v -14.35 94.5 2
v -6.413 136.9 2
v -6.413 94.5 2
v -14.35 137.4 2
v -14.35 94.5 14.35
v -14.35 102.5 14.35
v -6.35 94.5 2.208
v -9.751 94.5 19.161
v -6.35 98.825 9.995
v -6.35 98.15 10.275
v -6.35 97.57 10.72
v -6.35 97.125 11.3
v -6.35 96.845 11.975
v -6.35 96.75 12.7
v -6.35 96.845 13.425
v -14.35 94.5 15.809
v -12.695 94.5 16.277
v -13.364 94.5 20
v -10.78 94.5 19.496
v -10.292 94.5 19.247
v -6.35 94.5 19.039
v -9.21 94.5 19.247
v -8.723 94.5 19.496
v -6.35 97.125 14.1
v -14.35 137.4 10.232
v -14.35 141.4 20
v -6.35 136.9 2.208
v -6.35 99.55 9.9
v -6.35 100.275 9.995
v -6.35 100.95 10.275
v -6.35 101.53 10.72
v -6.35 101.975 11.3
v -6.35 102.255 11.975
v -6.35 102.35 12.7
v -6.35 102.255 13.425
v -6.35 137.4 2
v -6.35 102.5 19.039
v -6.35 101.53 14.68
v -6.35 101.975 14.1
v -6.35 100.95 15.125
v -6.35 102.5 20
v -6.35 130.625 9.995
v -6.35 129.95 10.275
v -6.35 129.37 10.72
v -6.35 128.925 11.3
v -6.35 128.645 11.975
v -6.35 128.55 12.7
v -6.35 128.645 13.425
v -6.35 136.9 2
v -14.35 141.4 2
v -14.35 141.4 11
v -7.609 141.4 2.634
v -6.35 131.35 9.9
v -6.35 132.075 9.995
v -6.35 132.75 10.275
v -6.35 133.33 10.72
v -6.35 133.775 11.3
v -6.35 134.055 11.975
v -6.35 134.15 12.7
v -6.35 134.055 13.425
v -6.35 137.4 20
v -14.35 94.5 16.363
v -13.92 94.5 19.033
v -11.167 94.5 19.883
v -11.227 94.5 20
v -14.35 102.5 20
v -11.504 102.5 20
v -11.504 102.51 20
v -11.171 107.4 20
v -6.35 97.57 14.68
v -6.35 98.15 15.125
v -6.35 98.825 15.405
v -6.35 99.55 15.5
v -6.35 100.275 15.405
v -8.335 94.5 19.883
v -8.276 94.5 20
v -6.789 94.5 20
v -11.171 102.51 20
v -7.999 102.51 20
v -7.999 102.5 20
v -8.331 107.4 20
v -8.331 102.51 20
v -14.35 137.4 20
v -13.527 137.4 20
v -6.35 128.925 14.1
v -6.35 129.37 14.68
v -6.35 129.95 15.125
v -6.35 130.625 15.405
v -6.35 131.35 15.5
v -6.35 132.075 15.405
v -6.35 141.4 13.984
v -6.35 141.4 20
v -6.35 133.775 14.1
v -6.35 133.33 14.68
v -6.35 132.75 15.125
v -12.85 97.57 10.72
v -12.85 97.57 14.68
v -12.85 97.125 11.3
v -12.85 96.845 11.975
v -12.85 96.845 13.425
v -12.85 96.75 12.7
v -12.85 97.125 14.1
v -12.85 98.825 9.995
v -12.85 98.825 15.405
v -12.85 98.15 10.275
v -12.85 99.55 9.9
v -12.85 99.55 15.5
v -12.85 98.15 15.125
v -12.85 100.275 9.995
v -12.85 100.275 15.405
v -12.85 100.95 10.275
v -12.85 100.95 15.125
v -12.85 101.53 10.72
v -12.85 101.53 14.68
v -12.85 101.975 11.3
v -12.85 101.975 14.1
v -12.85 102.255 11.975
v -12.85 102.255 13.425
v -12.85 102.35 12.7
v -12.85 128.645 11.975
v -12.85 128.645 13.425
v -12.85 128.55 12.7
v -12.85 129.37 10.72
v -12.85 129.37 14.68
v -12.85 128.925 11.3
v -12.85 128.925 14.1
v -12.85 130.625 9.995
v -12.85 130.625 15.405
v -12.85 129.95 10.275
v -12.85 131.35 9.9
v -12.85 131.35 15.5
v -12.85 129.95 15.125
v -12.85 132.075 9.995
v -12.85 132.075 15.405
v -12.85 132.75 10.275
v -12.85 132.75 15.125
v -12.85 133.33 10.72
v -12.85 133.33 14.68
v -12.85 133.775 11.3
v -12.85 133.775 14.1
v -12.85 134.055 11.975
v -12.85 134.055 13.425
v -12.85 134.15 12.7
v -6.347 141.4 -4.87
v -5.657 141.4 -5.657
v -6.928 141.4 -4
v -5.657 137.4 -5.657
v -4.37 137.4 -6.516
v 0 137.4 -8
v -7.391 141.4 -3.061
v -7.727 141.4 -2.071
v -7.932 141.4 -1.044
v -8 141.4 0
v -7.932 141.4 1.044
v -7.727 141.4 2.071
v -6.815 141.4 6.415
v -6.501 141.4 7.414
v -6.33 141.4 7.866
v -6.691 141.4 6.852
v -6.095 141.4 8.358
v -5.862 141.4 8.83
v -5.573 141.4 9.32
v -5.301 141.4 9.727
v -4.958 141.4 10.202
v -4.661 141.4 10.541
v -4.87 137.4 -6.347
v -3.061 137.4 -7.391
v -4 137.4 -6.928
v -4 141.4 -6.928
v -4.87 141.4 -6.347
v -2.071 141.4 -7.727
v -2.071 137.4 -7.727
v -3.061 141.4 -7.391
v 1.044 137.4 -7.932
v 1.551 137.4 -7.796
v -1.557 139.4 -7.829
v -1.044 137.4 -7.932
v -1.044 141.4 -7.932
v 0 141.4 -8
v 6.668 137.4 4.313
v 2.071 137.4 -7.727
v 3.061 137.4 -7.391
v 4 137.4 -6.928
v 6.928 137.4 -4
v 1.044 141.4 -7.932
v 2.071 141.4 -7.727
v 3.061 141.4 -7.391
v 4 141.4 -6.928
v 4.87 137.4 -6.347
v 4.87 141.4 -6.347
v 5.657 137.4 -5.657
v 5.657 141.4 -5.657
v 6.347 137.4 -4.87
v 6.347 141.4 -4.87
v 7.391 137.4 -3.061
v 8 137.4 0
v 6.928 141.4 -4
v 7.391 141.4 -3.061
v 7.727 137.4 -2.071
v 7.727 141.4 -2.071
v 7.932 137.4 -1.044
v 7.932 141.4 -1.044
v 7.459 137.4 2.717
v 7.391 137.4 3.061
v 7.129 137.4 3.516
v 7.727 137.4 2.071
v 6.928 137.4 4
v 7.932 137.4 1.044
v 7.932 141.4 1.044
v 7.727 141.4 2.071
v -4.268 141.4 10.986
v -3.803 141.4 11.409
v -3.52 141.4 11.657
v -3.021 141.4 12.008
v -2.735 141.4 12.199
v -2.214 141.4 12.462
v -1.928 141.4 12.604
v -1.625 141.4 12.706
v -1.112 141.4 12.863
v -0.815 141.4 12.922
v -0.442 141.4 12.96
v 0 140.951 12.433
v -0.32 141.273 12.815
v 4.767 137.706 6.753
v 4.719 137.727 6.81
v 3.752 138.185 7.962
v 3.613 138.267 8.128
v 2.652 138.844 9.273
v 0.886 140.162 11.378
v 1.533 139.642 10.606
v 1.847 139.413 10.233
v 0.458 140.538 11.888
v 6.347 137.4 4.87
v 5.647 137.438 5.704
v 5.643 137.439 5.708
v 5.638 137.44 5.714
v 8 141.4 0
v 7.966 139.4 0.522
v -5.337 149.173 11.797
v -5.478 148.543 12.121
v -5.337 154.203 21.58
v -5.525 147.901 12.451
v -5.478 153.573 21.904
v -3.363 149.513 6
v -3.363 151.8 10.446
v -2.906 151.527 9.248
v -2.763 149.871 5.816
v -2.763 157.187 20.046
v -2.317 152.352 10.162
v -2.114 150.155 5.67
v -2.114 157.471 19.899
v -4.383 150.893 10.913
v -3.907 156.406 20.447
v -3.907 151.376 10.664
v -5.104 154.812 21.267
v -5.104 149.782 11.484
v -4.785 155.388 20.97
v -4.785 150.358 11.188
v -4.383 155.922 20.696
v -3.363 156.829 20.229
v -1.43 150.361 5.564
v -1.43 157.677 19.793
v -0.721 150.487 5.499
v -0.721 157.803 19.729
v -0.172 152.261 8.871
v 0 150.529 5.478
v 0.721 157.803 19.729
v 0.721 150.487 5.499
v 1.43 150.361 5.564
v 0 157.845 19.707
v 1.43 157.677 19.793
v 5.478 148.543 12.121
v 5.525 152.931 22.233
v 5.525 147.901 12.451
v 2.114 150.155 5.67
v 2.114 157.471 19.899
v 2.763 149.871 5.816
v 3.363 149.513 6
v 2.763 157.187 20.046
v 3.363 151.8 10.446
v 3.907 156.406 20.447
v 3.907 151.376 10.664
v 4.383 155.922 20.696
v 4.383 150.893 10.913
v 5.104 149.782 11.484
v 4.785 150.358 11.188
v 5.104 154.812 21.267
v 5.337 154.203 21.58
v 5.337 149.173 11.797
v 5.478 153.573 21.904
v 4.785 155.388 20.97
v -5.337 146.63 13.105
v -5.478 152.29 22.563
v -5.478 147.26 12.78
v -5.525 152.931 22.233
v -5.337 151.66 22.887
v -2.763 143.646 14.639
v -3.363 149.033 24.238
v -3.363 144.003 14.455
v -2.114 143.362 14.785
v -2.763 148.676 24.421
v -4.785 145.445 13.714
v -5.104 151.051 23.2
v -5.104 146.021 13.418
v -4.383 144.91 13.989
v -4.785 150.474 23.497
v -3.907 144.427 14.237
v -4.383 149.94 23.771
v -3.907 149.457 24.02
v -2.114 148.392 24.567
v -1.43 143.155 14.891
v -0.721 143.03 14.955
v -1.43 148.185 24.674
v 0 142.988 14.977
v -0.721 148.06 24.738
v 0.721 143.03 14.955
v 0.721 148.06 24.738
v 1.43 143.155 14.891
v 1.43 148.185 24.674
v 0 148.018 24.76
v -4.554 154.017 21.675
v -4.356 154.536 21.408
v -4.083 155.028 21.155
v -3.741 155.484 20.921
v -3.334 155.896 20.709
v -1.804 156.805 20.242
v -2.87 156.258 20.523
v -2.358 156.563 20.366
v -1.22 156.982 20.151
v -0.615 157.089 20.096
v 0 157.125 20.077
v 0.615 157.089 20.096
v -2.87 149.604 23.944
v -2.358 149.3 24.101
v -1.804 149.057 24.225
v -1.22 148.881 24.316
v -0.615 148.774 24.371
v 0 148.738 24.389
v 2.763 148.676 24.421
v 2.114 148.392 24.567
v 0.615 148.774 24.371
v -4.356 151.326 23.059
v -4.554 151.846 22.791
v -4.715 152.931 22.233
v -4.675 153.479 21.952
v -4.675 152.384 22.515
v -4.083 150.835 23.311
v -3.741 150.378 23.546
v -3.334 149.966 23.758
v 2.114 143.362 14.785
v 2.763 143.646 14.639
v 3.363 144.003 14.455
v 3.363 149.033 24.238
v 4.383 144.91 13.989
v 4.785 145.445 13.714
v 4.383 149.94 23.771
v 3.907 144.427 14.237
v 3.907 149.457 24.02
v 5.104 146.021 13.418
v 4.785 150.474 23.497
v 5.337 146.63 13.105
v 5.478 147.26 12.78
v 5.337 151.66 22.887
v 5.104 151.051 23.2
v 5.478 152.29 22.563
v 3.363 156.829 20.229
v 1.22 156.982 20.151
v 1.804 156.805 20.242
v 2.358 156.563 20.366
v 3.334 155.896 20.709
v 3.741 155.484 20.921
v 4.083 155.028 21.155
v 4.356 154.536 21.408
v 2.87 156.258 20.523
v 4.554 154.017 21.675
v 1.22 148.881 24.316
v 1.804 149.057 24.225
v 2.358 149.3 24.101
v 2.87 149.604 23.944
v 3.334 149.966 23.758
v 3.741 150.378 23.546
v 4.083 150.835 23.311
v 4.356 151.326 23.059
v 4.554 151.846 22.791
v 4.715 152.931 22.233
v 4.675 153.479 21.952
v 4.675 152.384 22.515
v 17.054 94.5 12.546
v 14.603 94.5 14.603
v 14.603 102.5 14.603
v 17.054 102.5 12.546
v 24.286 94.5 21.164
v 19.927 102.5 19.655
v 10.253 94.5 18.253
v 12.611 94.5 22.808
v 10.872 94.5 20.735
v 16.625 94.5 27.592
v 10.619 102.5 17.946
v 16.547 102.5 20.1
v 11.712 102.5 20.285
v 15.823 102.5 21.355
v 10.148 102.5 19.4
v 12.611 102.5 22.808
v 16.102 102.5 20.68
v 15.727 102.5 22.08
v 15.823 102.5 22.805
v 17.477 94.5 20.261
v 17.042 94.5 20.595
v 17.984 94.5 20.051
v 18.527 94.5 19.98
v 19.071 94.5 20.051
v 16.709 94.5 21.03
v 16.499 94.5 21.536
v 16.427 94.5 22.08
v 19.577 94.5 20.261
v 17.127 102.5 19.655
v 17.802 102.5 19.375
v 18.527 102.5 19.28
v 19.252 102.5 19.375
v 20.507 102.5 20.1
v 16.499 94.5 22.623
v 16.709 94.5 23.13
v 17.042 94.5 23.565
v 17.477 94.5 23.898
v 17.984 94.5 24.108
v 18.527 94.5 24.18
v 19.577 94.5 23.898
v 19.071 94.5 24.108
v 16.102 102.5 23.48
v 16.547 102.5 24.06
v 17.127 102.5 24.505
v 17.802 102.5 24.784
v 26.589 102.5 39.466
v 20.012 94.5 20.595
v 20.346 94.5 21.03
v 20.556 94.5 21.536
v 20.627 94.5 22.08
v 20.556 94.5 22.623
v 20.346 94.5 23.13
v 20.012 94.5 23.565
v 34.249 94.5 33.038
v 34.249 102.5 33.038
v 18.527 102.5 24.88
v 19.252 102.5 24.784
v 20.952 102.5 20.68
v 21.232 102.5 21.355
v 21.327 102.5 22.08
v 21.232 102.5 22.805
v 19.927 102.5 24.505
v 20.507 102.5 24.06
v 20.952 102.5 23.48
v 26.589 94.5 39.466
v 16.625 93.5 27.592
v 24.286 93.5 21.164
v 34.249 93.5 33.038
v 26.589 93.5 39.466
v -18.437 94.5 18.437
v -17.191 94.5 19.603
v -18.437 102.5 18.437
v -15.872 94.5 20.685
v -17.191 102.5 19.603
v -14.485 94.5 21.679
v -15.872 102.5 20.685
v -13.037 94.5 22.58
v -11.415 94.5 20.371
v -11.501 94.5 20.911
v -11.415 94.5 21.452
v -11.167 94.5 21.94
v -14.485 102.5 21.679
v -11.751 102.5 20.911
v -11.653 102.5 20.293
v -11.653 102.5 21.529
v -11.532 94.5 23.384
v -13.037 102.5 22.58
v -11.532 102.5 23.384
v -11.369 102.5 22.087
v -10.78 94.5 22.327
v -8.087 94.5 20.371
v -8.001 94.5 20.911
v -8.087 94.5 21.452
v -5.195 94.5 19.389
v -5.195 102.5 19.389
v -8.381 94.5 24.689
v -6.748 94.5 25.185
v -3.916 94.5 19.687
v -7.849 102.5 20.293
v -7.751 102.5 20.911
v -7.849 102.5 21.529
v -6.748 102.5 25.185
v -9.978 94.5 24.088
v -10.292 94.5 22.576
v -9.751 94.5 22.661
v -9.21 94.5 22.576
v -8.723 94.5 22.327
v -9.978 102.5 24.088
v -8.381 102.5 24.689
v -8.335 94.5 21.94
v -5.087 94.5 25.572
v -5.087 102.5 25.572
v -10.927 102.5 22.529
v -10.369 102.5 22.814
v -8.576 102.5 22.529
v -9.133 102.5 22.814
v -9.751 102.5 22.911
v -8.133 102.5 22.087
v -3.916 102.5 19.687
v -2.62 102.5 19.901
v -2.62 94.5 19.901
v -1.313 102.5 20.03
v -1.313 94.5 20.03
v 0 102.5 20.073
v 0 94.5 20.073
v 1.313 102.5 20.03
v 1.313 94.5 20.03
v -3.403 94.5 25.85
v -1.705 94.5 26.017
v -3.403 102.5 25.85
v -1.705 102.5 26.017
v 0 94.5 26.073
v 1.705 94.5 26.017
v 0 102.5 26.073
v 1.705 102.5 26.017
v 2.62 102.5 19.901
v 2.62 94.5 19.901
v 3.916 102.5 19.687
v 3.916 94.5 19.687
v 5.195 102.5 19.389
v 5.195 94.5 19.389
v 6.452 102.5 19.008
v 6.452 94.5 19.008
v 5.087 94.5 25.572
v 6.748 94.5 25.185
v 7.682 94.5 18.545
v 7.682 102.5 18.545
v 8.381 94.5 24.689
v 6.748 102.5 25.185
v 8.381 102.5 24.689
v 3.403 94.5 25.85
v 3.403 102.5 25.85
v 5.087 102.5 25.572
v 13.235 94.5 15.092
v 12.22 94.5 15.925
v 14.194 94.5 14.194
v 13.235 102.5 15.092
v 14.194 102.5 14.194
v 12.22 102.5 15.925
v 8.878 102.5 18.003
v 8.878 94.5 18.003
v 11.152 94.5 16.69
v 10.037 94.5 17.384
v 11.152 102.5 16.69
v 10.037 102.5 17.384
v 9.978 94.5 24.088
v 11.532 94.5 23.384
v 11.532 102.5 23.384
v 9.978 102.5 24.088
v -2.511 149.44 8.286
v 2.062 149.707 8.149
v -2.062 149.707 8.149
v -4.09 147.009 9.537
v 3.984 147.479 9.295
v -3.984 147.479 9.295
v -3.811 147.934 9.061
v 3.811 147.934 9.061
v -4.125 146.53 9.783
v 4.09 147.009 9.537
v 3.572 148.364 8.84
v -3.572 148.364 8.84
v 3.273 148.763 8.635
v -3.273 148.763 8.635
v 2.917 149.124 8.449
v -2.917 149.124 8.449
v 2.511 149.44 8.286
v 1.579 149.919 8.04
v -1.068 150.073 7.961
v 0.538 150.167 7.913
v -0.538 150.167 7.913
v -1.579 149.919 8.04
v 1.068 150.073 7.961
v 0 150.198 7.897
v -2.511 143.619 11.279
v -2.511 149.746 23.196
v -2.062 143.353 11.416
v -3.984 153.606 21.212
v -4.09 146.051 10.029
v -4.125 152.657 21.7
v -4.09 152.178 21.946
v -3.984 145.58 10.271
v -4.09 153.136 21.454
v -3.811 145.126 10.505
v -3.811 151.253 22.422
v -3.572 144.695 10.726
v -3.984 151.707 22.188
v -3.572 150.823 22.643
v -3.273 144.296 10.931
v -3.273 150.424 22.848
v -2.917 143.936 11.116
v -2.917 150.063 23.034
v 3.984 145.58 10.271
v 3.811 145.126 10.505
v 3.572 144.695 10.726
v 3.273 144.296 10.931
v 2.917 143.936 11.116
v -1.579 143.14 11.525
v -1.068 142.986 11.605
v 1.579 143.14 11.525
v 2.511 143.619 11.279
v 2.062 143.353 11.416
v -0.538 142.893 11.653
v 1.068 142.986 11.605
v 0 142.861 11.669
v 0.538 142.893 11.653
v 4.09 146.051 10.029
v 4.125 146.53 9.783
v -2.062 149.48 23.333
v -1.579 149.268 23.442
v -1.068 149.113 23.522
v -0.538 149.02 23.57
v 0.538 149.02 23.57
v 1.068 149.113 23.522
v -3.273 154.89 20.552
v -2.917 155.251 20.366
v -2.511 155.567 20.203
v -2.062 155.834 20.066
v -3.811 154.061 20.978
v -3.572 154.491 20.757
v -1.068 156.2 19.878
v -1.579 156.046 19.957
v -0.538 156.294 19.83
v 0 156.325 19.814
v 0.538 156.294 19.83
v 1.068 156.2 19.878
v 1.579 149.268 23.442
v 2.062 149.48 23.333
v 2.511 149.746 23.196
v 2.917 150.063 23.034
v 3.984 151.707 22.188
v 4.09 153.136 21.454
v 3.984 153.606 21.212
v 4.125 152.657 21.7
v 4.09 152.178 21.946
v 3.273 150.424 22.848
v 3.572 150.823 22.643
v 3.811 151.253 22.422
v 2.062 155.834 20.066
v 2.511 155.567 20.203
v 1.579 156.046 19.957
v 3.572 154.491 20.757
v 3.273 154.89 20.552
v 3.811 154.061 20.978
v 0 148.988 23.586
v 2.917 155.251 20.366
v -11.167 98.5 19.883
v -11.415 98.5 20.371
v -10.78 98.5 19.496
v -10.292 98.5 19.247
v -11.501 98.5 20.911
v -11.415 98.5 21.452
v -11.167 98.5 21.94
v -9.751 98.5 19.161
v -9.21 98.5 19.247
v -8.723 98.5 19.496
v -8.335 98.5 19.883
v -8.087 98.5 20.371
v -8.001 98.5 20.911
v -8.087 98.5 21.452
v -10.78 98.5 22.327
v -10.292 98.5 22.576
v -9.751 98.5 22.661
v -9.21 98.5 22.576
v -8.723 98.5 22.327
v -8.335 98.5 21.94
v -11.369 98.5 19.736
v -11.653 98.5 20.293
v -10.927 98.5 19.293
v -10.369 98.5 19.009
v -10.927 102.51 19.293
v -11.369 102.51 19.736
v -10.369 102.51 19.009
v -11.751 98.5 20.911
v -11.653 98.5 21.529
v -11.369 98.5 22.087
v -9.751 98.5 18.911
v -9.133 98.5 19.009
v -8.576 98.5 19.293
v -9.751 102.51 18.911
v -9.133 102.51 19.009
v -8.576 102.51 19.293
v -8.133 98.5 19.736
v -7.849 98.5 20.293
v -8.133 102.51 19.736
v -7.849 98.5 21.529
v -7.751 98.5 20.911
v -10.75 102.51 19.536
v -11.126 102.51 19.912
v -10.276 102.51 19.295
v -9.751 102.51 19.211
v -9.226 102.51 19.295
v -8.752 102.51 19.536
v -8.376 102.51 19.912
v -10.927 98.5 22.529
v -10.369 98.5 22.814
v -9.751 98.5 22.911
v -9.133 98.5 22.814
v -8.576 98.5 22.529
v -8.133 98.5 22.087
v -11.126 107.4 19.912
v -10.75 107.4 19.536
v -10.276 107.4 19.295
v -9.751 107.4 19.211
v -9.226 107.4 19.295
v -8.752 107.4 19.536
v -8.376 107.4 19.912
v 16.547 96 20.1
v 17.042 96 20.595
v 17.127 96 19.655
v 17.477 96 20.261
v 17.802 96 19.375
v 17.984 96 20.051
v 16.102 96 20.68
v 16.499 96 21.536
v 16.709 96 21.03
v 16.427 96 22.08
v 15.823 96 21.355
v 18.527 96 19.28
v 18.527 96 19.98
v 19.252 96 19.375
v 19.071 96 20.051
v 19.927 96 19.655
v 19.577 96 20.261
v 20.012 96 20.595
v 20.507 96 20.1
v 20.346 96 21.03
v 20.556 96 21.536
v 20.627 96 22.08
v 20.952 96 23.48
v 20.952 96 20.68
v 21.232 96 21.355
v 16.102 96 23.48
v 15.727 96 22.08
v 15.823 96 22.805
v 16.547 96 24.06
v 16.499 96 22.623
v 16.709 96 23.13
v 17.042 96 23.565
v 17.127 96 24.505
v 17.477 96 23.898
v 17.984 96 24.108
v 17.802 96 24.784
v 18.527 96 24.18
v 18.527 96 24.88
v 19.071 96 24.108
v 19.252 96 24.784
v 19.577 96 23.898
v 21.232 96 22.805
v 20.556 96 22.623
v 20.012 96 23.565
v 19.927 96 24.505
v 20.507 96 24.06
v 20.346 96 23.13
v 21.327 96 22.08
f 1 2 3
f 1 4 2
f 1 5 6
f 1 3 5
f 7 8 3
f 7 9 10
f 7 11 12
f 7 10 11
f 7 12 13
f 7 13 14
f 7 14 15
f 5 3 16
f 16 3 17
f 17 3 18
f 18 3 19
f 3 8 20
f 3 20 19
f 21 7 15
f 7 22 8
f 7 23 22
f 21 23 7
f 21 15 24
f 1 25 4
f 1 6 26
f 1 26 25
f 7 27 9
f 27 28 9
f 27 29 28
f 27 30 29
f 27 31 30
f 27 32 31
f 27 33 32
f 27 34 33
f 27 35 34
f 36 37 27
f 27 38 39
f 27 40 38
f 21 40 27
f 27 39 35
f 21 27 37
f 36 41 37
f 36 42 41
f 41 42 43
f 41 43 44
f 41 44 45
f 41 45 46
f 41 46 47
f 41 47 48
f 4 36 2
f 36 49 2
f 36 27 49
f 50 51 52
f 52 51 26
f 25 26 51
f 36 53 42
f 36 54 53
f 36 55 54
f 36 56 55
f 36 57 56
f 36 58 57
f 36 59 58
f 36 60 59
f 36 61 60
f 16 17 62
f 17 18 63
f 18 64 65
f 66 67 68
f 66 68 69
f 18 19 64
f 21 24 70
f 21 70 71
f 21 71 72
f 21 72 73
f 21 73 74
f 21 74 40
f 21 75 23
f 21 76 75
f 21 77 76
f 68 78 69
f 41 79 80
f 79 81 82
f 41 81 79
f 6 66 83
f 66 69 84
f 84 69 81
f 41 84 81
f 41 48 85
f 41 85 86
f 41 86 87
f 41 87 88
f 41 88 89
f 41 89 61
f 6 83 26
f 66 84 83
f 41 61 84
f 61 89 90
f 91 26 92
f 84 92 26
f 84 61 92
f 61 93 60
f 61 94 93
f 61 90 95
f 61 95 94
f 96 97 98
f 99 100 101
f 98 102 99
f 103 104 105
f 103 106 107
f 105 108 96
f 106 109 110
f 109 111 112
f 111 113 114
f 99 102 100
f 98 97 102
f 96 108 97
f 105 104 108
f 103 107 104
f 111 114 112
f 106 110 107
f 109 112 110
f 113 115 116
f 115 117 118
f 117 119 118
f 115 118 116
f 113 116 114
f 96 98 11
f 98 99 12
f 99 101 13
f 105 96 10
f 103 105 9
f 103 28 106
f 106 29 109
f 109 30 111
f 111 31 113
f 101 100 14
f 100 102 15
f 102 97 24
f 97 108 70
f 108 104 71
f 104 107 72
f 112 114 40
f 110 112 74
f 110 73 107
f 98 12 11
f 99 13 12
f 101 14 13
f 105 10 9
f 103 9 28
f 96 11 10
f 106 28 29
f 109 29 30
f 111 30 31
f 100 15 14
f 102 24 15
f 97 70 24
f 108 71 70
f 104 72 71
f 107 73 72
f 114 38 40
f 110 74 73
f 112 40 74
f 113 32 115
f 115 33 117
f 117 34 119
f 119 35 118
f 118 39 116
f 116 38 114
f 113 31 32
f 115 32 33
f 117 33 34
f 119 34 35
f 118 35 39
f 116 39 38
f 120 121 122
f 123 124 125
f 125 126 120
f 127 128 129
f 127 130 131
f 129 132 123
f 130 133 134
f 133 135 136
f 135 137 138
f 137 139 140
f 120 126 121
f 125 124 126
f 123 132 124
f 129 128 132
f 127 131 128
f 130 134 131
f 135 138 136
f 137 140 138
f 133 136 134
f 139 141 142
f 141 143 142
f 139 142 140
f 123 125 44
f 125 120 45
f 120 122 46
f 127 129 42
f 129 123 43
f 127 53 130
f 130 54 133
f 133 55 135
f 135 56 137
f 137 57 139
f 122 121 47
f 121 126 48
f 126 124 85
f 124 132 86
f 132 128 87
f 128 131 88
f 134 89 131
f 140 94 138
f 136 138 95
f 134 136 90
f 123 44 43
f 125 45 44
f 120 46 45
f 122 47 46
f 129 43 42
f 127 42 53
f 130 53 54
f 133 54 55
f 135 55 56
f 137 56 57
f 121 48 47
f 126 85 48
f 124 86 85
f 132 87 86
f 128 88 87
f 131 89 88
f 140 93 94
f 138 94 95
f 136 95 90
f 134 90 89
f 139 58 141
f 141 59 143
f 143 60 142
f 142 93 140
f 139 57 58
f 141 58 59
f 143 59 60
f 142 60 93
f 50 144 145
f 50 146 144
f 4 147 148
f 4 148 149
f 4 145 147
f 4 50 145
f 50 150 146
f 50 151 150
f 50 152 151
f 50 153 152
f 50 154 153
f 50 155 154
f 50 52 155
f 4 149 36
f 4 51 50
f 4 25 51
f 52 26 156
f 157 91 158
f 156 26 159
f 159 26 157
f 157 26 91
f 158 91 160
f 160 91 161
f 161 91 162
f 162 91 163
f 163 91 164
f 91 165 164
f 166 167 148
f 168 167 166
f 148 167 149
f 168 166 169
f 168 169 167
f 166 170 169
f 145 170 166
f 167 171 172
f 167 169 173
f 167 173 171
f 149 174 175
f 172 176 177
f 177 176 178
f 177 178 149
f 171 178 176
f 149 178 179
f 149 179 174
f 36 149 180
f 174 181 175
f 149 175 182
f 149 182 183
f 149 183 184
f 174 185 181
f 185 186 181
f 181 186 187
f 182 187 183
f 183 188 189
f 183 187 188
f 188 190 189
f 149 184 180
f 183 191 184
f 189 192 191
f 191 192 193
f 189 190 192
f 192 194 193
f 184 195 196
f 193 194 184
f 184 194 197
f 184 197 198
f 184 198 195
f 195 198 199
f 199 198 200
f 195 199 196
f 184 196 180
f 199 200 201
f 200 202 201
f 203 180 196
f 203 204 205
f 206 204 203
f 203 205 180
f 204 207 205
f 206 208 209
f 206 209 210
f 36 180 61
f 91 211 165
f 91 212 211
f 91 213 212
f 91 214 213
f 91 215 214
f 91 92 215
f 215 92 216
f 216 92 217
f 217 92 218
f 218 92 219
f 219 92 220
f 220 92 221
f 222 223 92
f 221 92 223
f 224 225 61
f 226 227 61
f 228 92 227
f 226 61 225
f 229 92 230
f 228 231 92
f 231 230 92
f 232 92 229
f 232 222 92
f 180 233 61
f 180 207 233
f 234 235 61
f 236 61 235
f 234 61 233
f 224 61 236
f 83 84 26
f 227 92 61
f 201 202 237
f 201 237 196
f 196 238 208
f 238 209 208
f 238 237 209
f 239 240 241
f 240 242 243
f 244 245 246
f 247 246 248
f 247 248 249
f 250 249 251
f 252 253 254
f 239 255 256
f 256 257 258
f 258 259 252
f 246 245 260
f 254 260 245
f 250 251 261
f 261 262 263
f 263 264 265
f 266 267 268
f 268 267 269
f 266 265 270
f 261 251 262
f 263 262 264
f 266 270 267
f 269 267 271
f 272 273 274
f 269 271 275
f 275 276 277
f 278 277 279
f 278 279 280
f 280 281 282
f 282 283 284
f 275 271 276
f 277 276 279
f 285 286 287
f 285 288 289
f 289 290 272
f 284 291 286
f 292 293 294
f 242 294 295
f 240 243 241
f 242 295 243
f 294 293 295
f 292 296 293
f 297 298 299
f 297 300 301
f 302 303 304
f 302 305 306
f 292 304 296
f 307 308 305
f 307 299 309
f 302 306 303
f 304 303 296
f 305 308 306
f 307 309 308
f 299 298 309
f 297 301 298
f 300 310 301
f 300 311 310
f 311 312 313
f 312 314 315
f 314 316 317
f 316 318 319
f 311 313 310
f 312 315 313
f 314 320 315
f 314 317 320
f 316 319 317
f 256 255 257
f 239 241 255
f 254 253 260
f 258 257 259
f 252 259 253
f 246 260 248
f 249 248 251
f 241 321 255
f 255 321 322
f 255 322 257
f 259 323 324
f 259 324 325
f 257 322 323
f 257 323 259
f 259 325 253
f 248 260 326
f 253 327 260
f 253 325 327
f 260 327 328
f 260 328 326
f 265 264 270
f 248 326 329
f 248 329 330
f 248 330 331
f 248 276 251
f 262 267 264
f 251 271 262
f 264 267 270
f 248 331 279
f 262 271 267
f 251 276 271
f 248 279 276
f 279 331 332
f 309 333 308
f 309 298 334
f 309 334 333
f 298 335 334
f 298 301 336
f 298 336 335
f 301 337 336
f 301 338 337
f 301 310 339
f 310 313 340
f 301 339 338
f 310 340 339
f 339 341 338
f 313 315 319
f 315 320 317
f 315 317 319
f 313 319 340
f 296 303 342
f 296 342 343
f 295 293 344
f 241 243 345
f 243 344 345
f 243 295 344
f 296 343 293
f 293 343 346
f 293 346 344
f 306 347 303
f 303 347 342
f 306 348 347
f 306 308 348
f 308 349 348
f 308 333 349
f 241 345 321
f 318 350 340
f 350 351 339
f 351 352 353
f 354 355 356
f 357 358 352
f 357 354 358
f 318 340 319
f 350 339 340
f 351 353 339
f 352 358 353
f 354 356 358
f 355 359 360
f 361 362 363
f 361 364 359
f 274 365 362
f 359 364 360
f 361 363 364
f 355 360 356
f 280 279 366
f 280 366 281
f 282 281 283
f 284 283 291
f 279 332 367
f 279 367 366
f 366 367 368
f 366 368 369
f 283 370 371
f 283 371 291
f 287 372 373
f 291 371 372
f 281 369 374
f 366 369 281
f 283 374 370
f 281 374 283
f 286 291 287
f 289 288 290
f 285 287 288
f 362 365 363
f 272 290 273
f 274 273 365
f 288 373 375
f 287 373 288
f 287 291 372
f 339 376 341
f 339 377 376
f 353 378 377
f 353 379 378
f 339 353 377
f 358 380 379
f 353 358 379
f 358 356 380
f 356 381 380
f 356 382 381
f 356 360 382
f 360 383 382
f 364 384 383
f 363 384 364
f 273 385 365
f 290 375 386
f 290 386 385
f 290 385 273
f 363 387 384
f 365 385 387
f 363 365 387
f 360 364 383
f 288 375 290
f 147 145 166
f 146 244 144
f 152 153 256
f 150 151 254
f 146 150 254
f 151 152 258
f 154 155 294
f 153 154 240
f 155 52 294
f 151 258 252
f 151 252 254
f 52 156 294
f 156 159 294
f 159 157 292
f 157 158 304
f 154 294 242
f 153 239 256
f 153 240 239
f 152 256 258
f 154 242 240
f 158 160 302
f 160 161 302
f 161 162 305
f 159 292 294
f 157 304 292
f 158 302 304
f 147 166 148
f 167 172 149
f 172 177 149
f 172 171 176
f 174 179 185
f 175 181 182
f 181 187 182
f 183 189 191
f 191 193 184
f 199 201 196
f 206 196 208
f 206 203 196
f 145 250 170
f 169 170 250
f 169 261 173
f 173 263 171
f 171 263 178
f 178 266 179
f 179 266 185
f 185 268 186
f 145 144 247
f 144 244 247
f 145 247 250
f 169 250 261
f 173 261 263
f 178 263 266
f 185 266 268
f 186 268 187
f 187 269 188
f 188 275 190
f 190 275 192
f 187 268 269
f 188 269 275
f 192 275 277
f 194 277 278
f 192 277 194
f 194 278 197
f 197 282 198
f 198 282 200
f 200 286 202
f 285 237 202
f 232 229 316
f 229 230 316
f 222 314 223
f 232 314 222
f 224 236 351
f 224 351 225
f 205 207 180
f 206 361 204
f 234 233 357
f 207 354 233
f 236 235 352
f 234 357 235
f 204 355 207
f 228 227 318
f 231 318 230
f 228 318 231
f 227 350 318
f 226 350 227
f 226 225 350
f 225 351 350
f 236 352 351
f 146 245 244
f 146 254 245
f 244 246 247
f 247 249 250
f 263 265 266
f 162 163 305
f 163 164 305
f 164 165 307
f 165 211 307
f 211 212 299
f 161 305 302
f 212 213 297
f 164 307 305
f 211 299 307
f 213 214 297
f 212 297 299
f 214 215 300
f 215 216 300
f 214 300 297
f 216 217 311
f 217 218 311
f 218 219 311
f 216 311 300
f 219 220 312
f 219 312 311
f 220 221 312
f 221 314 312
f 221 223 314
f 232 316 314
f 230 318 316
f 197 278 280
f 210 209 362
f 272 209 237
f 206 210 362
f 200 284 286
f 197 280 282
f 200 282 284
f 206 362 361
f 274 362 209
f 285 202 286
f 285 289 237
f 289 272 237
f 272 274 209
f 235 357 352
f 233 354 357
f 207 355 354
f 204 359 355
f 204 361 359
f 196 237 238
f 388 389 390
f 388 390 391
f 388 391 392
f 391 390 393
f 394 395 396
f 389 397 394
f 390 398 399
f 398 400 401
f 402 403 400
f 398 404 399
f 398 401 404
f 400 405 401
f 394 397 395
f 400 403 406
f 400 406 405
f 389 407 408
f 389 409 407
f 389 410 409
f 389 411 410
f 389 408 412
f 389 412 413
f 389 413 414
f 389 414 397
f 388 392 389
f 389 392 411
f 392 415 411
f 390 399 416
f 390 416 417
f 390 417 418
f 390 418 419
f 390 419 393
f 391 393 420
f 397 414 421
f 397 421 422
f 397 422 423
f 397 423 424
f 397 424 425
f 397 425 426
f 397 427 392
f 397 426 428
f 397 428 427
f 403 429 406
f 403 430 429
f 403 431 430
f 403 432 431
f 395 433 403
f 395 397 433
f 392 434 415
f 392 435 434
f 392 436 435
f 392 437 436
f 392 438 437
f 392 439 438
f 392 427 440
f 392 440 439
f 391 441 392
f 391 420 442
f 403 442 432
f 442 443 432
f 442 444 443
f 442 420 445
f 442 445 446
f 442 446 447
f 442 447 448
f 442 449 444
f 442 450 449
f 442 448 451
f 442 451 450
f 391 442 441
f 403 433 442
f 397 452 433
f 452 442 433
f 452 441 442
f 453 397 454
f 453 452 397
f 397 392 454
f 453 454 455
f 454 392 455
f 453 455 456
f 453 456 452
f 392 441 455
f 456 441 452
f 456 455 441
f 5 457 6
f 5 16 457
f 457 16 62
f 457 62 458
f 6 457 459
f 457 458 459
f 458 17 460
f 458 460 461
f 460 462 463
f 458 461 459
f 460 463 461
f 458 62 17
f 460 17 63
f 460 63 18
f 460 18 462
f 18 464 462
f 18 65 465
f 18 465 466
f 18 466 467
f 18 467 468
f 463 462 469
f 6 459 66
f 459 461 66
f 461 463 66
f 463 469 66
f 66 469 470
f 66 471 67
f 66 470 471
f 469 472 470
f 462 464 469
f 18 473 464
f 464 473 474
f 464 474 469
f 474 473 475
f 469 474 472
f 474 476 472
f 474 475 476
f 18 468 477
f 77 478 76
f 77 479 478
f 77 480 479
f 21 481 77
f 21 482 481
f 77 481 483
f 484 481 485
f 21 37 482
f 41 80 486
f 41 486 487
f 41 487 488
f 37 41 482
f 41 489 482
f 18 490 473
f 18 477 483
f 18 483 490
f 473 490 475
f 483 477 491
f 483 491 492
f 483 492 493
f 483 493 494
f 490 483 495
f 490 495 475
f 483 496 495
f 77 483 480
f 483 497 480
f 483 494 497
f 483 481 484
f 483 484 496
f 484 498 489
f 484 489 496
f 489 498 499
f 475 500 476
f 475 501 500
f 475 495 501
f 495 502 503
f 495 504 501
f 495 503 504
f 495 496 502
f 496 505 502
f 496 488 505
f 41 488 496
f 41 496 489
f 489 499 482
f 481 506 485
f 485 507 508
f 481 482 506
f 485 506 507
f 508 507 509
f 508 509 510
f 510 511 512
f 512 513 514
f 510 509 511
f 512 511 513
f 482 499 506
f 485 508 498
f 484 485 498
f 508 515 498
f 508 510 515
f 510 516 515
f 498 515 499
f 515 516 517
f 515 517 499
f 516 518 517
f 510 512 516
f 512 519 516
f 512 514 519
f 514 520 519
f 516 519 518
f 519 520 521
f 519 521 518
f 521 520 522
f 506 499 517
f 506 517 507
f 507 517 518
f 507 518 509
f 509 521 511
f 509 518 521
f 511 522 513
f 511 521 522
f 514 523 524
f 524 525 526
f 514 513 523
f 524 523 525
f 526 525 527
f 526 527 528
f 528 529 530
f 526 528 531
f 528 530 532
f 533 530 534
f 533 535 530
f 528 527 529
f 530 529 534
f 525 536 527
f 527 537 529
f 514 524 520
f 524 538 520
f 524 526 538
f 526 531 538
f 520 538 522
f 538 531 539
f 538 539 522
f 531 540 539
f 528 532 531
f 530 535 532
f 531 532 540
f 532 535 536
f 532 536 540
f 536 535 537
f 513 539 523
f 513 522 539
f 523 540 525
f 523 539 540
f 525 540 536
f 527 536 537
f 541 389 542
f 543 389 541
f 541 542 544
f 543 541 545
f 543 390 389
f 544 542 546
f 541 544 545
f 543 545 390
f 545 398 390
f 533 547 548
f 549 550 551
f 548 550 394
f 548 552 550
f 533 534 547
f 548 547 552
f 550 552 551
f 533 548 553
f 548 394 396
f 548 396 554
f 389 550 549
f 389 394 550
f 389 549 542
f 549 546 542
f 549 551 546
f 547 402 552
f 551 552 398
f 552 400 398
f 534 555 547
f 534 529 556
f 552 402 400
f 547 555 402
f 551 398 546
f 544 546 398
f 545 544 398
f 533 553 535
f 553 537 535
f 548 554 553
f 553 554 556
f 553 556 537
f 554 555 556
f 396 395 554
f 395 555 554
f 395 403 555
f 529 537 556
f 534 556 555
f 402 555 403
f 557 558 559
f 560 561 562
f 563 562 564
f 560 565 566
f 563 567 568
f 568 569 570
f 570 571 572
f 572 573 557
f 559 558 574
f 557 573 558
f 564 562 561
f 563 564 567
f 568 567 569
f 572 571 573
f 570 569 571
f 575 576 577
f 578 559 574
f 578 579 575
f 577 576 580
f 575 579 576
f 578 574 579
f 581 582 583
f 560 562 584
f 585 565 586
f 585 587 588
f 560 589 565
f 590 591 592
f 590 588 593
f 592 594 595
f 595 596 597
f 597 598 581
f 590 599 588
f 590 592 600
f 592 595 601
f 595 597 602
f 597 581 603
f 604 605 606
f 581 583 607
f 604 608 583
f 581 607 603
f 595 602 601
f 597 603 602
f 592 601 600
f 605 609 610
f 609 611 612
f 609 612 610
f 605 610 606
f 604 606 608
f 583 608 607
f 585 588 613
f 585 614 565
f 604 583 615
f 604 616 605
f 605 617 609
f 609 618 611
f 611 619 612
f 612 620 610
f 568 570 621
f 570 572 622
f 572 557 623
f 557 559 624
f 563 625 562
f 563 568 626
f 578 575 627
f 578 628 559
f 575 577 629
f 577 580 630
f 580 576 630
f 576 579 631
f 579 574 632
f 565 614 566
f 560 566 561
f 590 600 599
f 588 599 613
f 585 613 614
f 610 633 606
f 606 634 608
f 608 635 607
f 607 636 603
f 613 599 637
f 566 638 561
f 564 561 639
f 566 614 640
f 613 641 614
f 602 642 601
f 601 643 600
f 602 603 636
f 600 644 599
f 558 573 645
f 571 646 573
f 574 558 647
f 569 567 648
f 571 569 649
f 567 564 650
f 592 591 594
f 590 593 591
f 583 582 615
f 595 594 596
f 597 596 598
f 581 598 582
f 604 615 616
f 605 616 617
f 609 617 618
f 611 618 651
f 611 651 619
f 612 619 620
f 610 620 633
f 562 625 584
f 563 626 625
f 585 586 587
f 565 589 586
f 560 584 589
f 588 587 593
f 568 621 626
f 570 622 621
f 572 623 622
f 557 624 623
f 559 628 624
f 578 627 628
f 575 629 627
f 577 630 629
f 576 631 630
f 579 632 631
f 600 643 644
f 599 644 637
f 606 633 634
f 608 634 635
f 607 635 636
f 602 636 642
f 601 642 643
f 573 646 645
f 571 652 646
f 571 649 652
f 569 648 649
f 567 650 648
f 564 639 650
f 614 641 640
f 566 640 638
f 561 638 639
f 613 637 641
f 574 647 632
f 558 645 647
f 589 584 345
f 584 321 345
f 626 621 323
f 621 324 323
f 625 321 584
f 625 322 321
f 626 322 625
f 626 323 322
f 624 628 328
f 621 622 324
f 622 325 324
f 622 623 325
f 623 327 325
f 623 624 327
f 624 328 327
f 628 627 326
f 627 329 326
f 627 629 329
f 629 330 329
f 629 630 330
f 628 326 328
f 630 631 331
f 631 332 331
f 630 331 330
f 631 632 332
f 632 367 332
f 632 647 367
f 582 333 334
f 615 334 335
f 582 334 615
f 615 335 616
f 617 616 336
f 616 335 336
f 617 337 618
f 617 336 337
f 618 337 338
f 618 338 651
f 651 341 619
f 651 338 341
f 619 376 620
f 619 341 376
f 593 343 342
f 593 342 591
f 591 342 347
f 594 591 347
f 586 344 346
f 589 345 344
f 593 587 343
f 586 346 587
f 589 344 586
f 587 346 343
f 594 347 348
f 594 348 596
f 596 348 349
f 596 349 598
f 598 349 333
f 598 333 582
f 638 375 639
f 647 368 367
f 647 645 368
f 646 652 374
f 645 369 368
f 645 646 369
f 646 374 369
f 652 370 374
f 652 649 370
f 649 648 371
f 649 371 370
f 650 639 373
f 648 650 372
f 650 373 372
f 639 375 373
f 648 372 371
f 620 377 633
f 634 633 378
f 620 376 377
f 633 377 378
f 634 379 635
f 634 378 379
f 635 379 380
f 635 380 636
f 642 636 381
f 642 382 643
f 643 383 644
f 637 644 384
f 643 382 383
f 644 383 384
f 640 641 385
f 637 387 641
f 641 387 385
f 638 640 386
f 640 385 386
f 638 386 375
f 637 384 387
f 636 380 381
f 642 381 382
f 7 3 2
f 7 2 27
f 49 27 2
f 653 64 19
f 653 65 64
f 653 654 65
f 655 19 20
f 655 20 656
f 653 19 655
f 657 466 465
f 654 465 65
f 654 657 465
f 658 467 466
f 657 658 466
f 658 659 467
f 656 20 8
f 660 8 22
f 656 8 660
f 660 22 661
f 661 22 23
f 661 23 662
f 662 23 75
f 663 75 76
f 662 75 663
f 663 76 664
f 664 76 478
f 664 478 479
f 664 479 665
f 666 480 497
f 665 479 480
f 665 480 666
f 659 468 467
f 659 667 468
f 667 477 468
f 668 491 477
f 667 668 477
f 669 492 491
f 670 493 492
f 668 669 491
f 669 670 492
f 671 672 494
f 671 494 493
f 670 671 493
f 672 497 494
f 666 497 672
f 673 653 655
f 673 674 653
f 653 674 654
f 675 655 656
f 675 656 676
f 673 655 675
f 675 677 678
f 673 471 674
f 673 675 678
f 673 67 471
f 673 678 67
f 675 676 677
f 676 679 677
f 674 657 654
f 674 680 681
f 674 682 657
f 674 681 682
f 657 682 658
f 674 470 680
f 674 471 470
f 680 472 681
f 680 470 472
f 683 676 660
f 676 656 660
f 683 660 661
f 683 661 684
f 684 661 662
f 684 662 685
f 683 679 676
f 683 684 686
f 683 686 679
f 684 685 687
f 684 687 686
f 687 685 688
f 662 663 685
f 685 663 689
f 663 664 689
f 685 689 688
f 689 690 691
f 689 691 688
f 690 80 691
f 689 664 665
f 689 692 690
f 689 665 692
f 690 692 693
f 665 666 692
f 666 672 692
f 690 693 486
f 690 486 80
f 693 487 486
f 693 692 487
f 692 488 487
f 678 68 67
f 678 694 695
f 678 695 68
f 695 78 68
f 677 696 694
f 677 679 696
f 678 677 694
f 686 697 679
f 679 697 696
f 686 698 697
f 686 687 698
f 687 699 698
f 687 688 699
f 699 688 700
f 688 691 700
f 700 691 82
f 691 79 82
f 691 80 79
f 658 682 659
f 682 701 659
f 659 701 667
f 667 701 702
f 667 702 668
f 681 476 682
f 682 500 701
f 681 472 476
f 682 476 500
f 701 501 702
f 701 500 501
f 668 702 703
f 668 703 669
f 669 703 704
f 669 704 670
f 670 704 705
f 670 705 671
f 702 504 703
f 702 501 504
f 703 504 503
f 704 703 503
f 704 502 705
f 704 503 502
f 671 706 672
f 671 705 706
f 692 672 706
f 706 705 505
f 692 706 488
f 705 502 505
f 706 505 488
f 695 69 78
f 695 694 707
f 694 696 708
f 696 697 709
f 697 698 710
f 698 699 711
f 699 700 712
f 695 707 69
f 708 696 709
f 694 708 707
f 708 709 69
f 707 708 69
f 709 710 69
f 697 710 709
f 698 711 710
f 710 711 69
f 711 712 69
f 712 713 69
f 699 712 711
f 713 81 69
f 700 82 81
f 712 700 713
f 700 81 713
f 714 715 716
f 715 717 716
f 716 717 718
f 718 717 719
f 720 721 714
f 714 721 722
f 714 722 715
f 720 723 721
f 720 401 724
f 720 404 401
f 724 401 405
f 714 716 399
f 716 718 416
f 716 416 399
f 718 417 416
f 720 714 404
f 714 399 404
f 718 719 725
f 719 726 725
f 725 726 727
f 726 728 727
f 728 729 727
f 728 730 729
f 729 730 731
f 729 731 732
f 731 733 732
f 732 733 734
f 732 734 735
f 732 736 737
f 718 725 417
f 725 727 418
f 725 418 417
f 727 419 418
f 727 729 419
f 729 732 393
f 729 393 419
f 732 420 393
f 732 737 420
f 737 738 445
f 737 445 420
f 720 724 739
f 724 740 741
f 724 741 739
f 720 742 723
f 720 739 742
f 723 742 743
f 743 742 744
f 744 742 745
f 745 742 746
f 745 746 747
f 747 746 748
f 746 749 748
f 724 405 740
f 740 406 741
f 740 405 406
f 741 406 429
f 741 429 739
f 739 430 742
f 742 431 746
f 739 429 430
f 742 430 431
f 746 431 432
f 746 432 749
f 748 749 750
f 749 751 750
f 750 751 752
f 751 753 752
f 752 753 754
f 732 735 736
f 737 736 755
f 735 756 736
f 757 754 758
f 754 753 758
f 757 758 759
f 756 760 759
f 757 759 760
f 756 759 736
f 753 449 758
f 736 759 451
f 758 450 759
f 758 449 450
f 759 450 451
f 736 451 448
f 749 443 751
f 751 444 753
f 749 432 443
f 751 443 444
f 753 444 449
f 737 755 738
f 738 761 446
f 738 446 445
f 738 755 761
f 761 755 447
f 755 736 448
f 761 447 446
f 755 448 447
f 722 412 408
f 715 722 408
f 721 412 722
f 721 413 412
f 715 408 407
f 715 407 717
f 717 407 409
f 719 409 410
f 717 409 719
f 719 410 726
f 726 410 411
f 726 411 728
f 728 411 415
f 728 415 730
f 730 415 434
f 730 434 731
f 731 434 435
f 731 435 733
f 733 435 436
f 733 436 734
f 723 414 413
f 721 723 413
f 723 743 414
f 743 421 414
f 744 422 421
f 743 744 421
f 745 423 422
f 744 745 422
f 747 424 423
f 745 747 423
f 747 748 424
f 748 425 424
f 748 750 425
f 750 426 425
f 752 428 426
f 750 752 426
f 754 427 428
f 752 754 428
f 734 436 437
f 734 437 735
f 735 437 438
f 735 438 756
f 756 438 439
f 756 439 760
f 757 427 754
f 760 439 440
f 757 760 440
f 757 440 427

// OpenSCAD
// H04L_foot_left  (qty 1; frame: H at alpha_bail 0; MJF PA12; print service OK)
// GENERATED by gen_halo_stl.py from halo_parts.py. Change numbers in halo_params.scad.
// Every dimension below is an expression of the names in halo_params.scad.
include <../halo_params.scad>

mirror([0, 1, 0]) {
    rotate([90, 0, 0]) {
        difference() {
            union() {
                rotate([0, 0, FOOT_LEAF_OFF + 180]) {
                    translate([HINGE_H, -(R_LEAF + 1.75), Y_HINGE0 + 0.5]) {
                        cube([HINGE_H + HINGE_SEAT_T - HINGE_H, -2 - (-(R_LEAF + 1.75)), Y_HINGE1 + 4.5 - (Y_HINGE0 + 0.5)], center = false);
                    }
                }
                hull() {
                    translate([0, 0, Y_HINGE1 + 0.5]) {
                        cylinder(h = Y_HINGE1 + 4.5 - (Y_HINGE1 + 0.5), r = 8, center = false, $fn = 48);
                    }
                    rotate([0, 0, FOOT_LEAF_OFF + 180]) {
                        translate([HINGE_H, -(R_LEAF + 1.75), Y_HINGE1 + 0.5]) {
                            cube([HINGE_H + HINGE_SEAT_T - HINGE_H, -2 - (-(R_LEAF + 1.75)), Y_HINGE1 + 4.5 - (Y_HINGE1 + 0.5)], center = false);
                        }
                    }
                }
                translate([0 + (LEG_T0 - 2) * 0, 0 + (LEG_T0 - 2) * LEG_DZ, Y_HUB + (LEG_T0 - 2) * LEG_DY]) {
                    rotate([0, acos((Y_HUB + (LEG_T0 + SOCK_DEPTH) * LEG_DY - (Y_HUB + (LEG_T0 - 2) * LEG_DY)) / sqrt((0 + (LEG_T0 + SOCK_DEPTH) * 0 - (0 + (LEG_T0 - 2) * 0)) * (0 + (LEG_T0 + SOCK_DEPTH) * 0 - (0 + (LEG_T0 - 2) * 0)) + (0 + (LEG_T0 + SOCK_DEPTH) * LEG_DZ - (0 + (LEG_T0 - 2) * LEG_DZ)) * (0 + (LEG_T0 + SOCK_DEPTH) * LEG_DZ - (0 + (LEG_T0 - 2) * LEG_DZ)) + (Y_HUB + (LEG_T0 + SOCK_DEPTH) * LEG_DY - (Y_HUB + (LEG_T0 - 2) * LEG_DY)) * (Y_HUB + (LEG_T0 + SOCK_DEPTH) * LEG_DY - (Y_HUB + (LEG_T0 - 2) * LEG_DY)))), atan2(0 + (LEG_T0 + SOCK_DEPTH) * LEG_DZ - (0 + (LEG_T0 - 2) * LEG_DZ), 0 + (LEG_T0 + SOCK_DEPTH) * 0 - (0 + (LEG_T0 - 2) * 0))]) {
                        cylinder(h = sqrt((0 + (LEG_T0 + SOCK_DEPTH) * 0 - (0 + (LEG_T0 - 2) * 0)) * (0 + (LEG_T0 + SOCK_DEPTH) * 0 - (0 + (LEG_T0 - 2) * 0)) + (0 + (LEG_T0 + SOCK_DEPTH) * LEG_DZ - (0 + (LEG_T0 - 2) * LEG_DZ)) * (0 + (LEG_T0 + SOCK_DEPTH) * LEG_DZ - (0 + (LEG_T0 - 2) * LEG_DZ)) + (Y_HUB + (LEG_T0 + SOCK_DEPTH) * LEG_DY - (Y_HUB + (LEG_T0 - 2) * LEG_DY)) * (Y_HUB + (LEG_T0 + SOCK_DEPTH) * LEG_DY - (Y_HUB + (LEG_T0 - 2) * LEG_DY))), r = SOCK_D / 2 + SOCK_WALL, center = false, $fn = 48);
                    }
                }
                hull() {
                    translate([0, 0, Y_HINGE1 + 0.5]) {
                        cylinder(h = Y_HINGE1 + 4.5 - (Y_HINGE1 + 0.5), r = 8, center = false, $fn = 48);
                    }
                    translate([0 + (LEG_T0 - 2) * 0, 0 + (LEG_T0 - 2) * LEG_DZ, Y_HUB + (LEG_T0 - 2) * LEG_DY]) {
                        rotate([0, acos((Y_HUB + (LEG_T0 + 3) * LEG_DY - (Y_HUB + (LEG_T0 - 2) * LEG_DY)) / sqrt((0 + (LEG_T0 + 3) * 0 - (0 + (LEG_T0 - 2) * 0)) * (0 + (LEG_T0 + 3) * 0 - (0 + (LEG_T0 - 2) * 0)) + (0 + (LEG_T0 + 3) * LEG_DZ - (0 + (LEG_T0 - 2) * LEG_DZ)) * (0 + (LEG_T0 + 3) * LEG_DZ - (0 + (LEG_T0 - 2) * LEG_DZ)) + (Y_HUB + (LEG_T0 + 3) * LEG_DY - (Y_HUB + (LEG_T0 - 2) * LEG_DY)) * (Y_HUB + (LEG_T0 + 3) * LEG_DY - (Y_HUB + (LEG_T0 - 2) * LEG_DY)))), atan2(0 + (LEG_T0 + 3) * LEG_DZ - (0 + (LEG_T0 - 2) * LEG_DZ), 0 + (LEG_T0 + 3) * 0 - (0 + (LEG_T0 - 2) * 0))]) {
                            cylinder(h = sqrt((0 + (LEG_T0 + 3) * 0 - (0 + (LEG_T0 - 2) * 0)) * (0 + (LEG_T0 + 3) * 0 - (0 + (LEG_T0 - 2) * 0)) + (0 + (LEG_T0 + 3) * LEG_DZ - (0 + (LEG_T0 - 2) * LEG_DZ)) * (0 + (LEG_T0 + 3) * LEG_DZ - (0 + (LEG_T0 - 2) * LEG_DZ)) + (Y_HUB + (LEG_T0 + 3) * LEG_DY - (Y_HUB + (LEG_T0 - 2) * LEG_DY)) * (Y_HUB + (LEG_T0 + 3) * LEG_DY - (Y_HUB + (LEG_T0 - 2) * LEG_DY))), r = SOCK_D / 2 + SOCK_WALL, center = false, $fn = 48);
                        }
                    }
                }
                rotate([0, 0, DET_ARM_OFF + 90]) {
                    translate([R_LEAFC + 0.5, (-ARM_W) / 2, Y_F1 + BOSS_T + 0.5]) {
                        cube([R_STOP1 - (R_LEAFC + 0.5), ARM_W / 2 - ((-ARM_W) / 2), Y_F1 + BOSS_T + 0.5 + 8 - (Y_F1 + BOSS_T + 0.5)], center = false);
                    }
                }
                rotate([0, 0, DET_ARM_OFF + 90]) {
                    translate([R_STOP0 + 1.5, (-ARM_W) / 2, Y_SIDE_IN + STOP_RING_T + 0.5]) {
                        cube([R_STOP1 - (R_STOP0 + 1.5), ARM_W / 2 - ((-ARM_W) / 2), Y_F1 + BOSS_T + 0.5 + 0.01 - (Y_SIDE_IN + STOP_RING_T + 0.5)], center = false);
                    }
                }
                translate([0, 0, Y_F1 + BOSS_T + 0.5]) {
                    rotate([0, 0, DET_ARM_OFF - 5 + 90]) {
                        rotate_extrude(angle = 45 - (DET_ARM_OFF - 5), $fn = 96) polygon([[R_LEAFC, 0], [R_LEAFC + 6, 0], [R_LEAFC + 6, Y_F1 + BOSS_T + 0.5 + 8 - (Y_F1 + BOSS_T + 0.5)], [R_LEAFC, Y_F1 + BOSS_T + 0.5 + 8 - (Y_F1 + BOSS_T + 0.5)]]);
                    }
                }
            }
            rotate([0, 0, FOOT_LEAF_OFF + 180]) {
                translate([HINGE_H - 0.01, -HINGE_STUD_X, (Y_HINGE0 + Y_HINGE1) / 2 + -1 * HINGE_STUD_Y]) {
                    rotate([0, 90, 0]) {
                        cylinder(h = M4_INS_L + 0.01, r = M4_INS_D / 2, center = false, $fn = 24);
                    }
                }
            }
            rotate([0, 0, FOOT_LEAF_OFF + 180]) {
                translate([HINGE_H - 0.01, -HINGE_STUD_X, (Y_HINGE0 + Y_HINGE1) / 2 + 1 * HINGE_STUD_Y]) {
                    rotate([0, 90, 0]) {
                        cylinder(h = M4_INS_L + 0.01, r = M4_INS_D / 2, center = false, $fn = 24);
                    }
                }
            }
            translate([0 + LEG_T0 * 0, 0 + LEG_T0 * LEG_DZ, Y_HUB + LEG_T0 * LEG_DY]) {
                rotate([0, acos((Y_HUB + (LEG_T0 + SOCK_DEPTH + 0.1) * LEG_DY - (Y_HUB + LEG_T0 * LEG_DY)) / sqrt((0 + (LEG_T0 + SOCK_DEPTH + 0.1) * 0 - (0 + LEG_T0 * 0)) * (0 + (LEG_T0 + SOCK_DEPTH + 0.1) * 0 - (0 + LEG_T0 * 0)) + (0 + (LEG_T0 + SOCK_DEPTH + 0.1) * LEG_DZ - (0 + LEG_T0 * LEG_DZ)) * (0 + (LEG_T0 + SOCK_DEPTH + 0.1) * LEG_DZ - (0 + LEG_T0 * LEG_DZ)) + (Y_HUB + (LEG_T0 + SOCK_DEPTH + 0.1) * LEG_DY - (Y_HUB + LEG_T0 * LEG_DY)) * (Y_HUB + (LEG_T0 + SOCK_DEPTH + 0.1) * LEG_DY - (Y_HUB + LEG_T0 * LEG_DY)))), atan2(0 + (LEG_T0 + SOCK_DEPTH + 0.1) * LEG_DZ - (0 + LEG_T0 * LEG_DZ), 0 + (LEG_T0 + SOCK_DEPTH + 0.1) * 0 - (0 + LEG_T0 * 0))]) {
                    cylinder(h = sqrt((0 + (LEG_T0 + SOCK_DEPTH + 0.1) * 0 - (0 + LEG_T0 * 0)) * (0 + (LEG_T0 + SOCK_DEPTH + 0.1) * 0 - (0 + LEG_T0 * 0)) + (0 + (LEG_T0 + SOCK_DEPTH + 0.1) * LEG_DZ - (0 + LEG_T0 * LEG_DZ)) * (0 + (LEG_T0 + SOCK_DEPTH + 0.1) * LEG_DZ - (0 + LEG_T0 * LEG_DZ)) + (Y_HUB + (LEG_T0 + SOCK_DEPTH + 0.1) * LEG_DY - (Y_HUB + LEG_T0 * LEG_DY)) * (Y_HUB + (LEG_T0 + SOCK_DEPTH + 0.1) * LEG_DY - (Y_HUB + LEG_T0 * LEG_DY))), r = SOCK_D / 2, center = false, $fn = 48);
                }
            }
            translate([0 + (LEG_T0 + SOCK_DEPTH - 0.6) * 0, 0 + (LEG_T0 + SOCK_DEPTH - 0.6) * LEG_DZ, Y_HUB + (LEG_T0 + SOCK_DEPTH - 0.6) * LEG_DY]) {
                rotate([0, acos((Y_HUB + (LEG_T0 + SOCK_DEPTH + 0.01) * LEG_DY - (Y_HUB + (LEG_T0 + SOCK_DEPTH - 0.6) * LEG_DY)) / sqrt((0 + (LEG_T0 + SOCK_DEPTH + 0.01) * 0 - (0 + (LEG_T0 + SOCK_DEPTH - 0.6) * 0)) * (0 + (LEG_T0 + SOCK_DEPTH + 0.01) * 0 - (0 + (LEG_T0 + SOCK_DEPTH - 0.6) * 0)) + (0 + (LEG_T0 + SOCK_DEPTH + 0.01) * LEG_DZ - (0 + (LEG_T0 + SOCK_DEPTH - 0.6) * LEG_DZ)) * (0 + (LEG_T0 + SOCK_DEPTH + 0.01) * LEG_DZ - (0 + (LEG_T0 + SOCK_DEPTH - 0.6) * LEG_DZ)) + (Y_HUB + (LEG_T0 + SOCK_DEPTH + 0.01) * LEG_DY - (Y_HUB + (LEG_T0 + SOCK_DEPTH - 0.6) * LEG_DY)) * (Y_HUB + (LEG_T0 + SOCK_DEPTH + 0.01) * LEG_DY - (Y_HUB + (LEG_T0 + SOCK_DEPTH - 0.6) * LEG_DY)))), atan2(0 + (LEG_T0 + SOCK_DEPTH + 0.01) * LEG_DZ - (0 + (LEG_T0 + SOCK_DEPTH - 0.6) * LEG_DZ), 0 + (LEG_T0 + SOCK_DEPTH + 0.01) * 0 - (0 + (LEG_T0 + SOCK_DEPTH - 0.6) * 0))]) {
                    cylinder(h = sqrt((0 + (LEG_T0 + SOCK_DEPTH + 0.01) * 0 - (0 + (LEG_T0 + SOCK_DEPTH - 0.6) * 0)) * (0 + (LEG_T0 + SOCK_DEPTH + 0.01) * 0 - (0 + (LEG_T0 + SOCK_DEPTH - 0.6) * 0)) + (0 + (LEG_T0 + SOCK_DEPTH + 0.01) * LEG_DZ - (0 + (LEG_T0 + SOCK_DEPTH - 0.6) * LEG_DZ)) * (0 + (LEG_T0 + SOCK_DEPTH + 0.01) * LEG_DZ - (0 + (LEG_T0 + SOCK_DEPTH - 0.6) * LEG_DZ)) + (Y_HUB + (LEG_T0 + SOCK_DEPTH + 0.01) * LEG_DY - (Y_HUB + (LEG_T0 + SOCK_DEPTH - 0.6) * LEG_DY)) * (Y_HUB + (LEG_T0 + SOCK_DEPTH + 0.01) * LEG_DY - (Y_HUB + (LEG_T0 + SOCK_DEPTH - 0.6) * LEG_DY))), r1 = SOCK_D / 2, r2 = SOCK_D / 2 + 0.6, center = false, $fn = 48);
                }
            }
            translate([0, 0, Y_HINGE0 + 0.5 - 1]) {
                cylinder(h = Y_HINGE1 - (Y_HINGE0 + 0.5) + 1, r = HINGE_KNUCKLE_D / 2 + 0.4, center = false, $fn = 32);
            }
            translate([(-((R_BRAKE0 + R_BRAKE1) / 2)) * sin(BRAKE_TH), ((R_BRAKE0 + R_BRAKE1) / 2) * cos(BRAKE_TH), Y_F1 + BOSS_T + 0.5 - 0.01]) {
                cylinder(h = 5.01, r = 1.75, center = false, $fn = 20);
            }
            translate([(-((R_BRAKE0 + R_BRAKE1) / 2)) * sin(BRAKE_TH), ((R_BRAKE0 + R_BRAKE1) / 2) * cos(BRAKE_TH), Y_F1 + BOSS_T + 0.5 + 8 - M3_INS_L]) {
                cylinder(h = M3_INS_L + 0.01, r = M3_INS_D / 2, center = false, $fn = 20);
            }
            translate([(-((R_BRAKE0 + R_BRAKE1) / 2)) * sin(BRAKE_TH), ((R_BRAKE0 + R_BRAKE1) / 2) * cos(BRAKE_TH), Y_F1 + BOSS_T + 0.5 + 4.9]) {
                cylinder(h = Y_F1 + BOSS_T + 0.5 + 8 - (Y_F1 + BOSS_T + 0.5), r = 1.7, center = false, $fn = 20);
            }
            translate([(-R_DET) * sin(DET_ARM_OFF), R_DET * cos(DET_ARM_OFF), Y_F1 + BOSS_T + 0.5 + 8 - M4_INS_L]) {
                cylinder(h = M4_INS_L + 0.01, r = M4_INS_D / 2, center = false, $fn = 24);
            }
            translate([(-R_DET) * sin(DET_ARM_OFF), R_DET * cos(DET_ARM_OFF), Y_F1 + BOSS_T + 0.5 - 0.01]) {
                cylinder(h = Y_F1 + BOSS_T + 0.5 + 8 - (Y_F1 + BOSS_T + 0.5), r = 2.1, center = false, $fn = 24);
            }
        }
    }
}
